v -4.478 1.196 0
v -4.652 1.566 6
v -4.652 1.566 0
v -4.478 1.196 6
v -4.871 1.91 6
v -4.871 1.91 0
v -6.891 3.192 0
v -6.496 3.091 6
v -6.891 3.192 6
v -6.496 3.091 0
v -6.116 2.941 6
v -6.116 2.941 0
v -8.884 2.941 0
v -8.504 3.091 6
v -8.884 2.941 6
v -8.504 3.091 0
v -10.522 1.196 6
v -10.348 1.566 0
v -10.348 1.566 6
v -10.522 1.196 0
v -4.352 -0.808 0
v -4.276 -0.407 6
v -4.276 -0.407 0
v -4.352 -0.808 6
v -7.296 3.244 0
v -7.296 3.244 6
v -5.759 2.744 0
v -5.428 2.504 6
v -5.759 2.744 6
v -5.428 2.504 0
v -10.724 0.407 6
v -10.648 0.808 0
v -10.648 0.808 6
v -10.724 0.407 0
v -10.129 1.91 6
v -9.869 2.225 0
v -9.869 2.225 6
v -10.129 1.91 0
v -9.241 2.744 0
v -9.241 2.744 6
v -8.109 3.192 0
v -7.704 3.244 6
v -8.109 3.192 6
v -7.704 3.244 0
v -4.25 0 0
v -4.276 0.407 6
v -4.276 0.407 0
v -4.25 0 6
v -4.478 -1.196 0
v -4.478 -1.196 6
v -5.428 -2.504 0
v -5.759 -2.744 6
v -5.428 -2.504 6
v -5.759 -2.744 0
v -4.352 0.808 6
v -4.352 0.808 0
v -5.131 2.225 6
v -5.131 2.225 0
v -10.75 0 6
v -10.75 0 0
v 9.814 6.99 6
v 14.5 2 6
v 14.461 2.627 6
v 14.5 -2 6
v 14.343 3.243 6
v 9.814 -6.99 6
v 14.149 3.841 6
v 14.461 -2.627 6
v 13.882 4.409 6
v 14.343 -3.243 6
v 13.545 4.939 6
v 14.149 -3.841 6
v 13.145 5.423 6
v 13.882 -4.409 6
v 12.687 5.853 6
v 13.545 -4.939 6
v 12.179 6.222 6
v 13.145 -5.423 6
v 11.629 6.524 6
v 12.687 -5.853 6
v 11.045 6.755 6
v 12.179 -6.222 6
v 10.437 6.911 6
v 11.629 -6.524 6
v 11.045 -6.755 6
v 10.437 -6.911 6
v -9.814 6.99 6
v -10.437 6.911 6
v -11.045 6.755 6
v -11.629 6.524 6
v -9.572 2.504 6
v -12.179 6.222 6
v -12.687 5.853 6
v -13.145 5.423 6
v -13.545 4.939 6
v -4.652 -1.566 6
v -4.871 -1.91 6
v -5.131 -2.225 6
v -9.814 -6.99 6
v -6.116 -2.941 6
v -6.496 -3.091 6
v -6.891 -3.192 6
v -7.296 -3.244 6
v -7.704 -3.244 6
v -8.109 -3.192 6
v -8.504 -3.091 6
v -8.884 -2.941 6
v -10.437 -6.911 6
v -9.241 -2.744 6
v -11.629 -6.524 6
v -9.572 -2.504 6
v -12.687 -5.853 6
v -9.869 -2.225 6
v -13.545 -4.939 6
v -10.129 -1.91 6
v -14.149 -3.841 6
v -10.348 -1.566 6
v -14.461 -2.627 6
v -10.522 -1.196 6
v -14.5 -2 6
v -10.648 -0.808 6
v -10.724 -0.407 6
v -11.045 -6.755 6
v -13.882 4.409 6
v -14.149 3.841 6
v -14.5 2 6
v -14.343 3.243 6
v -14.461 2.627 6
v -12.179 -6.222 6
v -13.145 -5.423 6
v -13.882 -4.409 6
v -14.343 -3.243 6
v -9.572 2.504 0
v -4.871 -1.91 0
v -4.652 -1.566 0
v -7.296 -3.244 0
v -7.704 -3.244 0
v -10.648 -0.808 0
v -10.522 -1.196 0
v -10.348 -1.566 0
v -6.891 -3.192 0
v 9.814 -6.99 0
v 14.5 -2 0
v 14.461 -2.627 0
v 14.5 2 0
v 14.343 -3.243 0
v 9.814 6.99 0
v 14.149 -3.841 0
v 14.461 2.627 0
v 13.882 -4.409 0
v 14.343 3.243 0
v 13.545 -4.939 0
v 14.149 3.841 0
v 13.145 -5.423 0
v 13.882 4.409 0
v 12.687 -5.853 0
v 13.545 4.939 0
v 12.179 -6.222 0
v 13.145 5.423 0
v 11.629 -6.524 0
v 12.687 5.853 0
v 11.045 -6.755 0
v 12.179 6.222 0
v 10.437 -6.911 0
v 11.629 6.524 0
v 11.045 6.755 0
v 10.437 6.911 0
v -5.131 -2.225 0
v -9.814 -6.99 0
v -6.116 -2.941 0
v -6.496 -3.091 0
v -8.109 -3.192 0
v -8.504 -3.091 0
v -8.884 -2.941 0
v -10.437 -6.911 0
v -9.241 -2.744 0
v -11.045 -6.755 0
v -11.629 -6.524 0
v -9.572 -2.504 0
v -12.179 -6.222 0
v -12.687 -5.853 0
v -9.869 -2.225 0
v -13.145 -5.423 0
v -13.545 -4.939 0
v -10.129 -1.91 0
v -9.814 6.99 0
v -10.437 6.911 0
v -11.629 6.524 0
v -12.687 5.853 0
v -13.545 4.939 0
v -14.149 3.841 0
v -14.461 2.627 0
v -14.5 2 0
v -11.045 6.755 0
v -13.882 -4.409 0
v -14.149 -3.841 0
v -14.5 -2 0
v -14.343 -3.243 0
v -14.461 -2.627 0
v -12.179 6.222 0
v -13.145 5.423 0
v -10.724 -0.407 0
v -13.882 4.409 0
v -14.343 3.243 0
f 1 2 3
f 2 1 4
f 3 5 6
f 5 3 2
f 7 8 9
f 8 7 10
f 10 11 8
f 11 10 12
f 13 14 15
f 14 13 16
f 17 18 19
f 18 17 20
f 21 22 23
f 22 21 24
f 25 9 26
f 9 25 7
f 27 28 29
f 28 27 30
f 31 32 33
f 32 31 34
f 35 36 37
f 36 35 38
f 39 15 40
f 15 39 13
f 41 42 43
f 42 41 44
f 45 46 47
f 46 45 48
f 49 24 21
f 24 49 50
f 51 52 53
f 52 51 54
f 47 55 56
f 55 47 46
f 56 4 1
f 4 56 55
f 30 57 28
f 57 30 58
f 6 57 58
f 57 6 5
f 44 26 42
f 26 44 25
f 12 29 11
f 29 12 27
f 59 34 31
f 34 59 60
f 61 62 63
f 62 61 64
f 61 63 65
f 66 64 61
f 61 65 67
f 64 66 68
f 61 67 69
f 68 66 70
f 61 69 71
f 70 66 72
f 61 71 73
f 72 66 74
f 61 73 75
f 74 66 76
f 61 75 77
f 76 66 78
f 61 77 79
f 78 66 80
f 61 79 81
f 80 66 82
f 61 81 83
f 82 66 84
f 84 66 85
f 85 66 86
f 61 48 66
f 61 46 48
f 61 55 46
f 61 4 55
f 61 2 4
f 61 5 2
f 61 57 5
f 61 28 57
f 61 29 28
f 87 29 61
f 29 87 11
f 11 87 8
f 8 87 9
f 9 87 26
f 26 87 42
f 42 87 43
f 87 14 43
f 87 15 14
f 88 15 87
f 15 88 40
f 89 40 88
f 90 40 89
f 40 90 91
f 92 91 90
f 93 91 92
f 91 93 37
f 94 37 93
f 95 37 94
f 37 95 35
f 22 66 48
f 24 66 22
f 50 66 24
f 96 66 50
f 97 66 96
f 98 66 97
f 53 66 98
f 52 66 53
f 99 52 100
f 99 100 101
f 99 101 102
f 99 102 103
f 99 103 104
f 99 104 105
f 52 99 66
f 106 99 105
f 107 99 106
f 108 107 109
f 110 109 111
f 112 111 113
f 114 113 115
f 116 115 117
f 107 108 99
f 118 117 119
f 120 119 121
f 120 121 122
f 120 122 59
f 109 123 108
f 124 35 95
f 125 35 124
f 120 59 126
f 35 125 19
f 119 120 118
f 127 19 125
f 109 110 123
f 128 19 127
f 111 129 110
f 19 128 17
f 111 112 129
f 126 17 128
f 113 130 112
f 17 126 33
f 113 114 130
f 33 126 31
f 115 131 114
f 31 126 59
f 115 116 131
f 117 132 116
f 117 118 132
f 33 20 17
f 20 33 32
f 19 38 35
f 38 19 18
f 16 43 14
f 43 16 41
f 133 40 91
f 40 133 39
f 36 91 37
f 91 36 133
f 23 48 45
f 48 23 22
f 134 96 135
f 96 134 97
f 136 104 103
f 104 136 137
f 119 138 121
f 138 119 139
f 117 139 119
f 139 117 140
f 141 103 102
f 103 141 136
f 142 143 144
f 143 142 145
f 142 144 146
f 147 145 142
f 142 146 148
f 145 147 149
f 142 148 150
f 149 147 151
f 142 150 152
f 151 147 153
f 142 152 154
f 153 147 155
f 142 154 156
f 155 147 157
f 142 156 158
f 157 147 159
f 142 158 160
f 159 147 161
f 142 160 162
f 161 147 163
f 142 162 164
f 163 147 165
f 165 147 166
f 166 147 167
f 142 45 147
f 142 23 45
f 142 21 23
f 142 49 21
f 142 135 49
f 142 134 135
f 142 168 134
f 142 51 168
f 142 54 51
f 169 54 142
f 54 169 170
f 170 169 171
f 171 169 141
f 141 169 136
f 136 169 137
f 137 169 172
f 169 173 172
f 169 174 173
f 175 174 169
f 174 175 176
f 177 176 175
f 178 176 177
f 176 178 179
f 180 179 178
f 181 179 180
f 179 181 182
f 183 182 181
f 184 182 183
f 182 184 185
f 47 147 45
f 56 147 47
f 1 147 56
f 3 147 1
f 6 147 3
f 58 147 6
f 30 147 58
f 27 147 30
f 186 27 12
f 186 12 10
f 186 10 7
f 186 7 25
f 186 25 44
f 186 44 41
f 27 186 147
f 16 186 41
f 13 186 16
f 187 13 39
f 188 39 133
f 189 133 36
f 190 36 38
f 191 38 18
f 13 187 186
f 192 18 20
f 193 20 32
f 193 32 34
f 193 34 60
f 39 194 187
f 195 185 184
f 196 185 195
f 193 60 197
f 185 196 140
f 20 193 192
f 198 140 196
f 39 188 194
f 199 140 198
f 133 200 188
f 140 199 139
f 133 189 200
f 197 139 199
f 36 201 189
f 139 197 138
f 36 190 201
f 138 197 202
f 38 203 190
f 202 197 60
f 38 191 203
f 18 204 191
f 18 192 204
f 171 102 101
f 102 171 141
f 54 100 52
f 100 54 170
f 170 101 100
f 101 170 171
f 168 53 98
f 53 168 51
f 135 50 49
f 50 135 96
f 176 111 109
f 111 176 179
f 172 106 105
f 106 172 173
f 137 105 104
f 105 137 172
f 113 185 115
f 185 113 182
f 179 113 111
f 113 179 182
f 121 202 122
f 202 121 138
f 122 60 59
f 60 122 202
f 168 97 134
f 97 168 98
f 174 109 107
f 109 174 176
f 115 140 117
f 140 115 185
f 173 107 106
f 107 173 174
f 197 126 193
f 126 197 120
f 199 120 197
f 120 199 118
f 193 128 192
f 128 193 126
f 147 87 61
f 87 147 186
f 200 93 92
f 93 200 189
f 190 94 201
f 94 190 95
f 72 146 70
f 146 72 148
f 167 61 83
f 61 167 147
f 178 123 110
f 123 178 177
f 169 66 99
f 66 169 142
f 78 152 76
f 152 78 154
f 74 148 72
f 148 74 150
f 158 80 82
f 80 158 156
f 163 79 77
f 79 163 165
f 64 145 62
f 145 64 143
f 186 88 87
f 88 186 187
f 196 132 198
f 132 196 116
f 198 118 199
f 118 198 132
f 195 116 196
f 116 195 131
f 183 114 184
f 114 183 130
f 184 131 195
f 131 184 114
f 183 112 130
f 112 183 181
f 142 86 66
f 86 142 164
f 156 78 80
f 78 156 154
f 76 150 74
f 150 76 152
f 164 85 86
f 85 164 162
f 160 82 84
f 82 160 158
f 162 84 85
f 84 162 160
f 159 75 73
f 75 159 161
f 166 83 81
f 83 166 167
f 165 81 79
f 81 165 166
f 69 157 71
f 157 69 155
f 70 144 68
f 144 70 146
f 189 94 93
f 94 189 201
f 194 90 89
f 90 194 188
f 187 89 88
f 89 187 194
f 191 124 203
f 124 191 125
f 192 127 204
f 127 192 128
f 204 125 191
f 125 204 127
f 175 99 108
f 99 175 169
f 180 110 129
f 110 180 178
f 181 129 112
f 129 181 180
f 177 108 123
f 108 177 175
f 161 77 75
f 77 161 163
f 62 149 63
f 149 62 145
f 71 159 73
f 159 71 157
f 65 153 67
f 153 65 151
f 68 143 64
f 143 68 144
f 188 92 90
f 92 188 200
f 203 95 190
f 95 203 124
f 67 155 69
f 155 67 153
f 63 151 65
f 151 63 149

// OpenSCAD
$fn = 50;


difference() {
	union() {
		hull() {
			translate(v = [-9.5000000000, 2.0000000000, 0]) {
				cylinder(h = 6, r = 5);
			}
			translate(v = [9.5000000000, 2.0000000000, 0]) {
				cylinder(h = 6, r = 5);
			}
			translate(v = [-9.5000000000, -2.0000000000, 0]) {
				cylinder(h = 6, r = 5);
			}
			translate(v = [9.5000000000, -2.0000000000, 0]) {
				cylinder(h = 6, r = 5);
			}
		}
	}
	union() {
		translate(v = [-7.5000000000, 0.0000000000, 0]) {
			cylinder(h = 6, r = 3.2500000000);
		}
		translate(v = [-7.5000000000, 0.0000000000, 0]) {
			cylinder(h = 6, r = 1.8000000000);
		}
		translate(v = [-7.5000000000, 0.0000000000, 0]) {
			cylinder(h = 6, r = 1.8000000000);
		}
		translate(v = [-7.5000000000, 0.0000000000, 0]) {
			cylinder(h = 6, r = 1.8000000000);
		}
	}
}
